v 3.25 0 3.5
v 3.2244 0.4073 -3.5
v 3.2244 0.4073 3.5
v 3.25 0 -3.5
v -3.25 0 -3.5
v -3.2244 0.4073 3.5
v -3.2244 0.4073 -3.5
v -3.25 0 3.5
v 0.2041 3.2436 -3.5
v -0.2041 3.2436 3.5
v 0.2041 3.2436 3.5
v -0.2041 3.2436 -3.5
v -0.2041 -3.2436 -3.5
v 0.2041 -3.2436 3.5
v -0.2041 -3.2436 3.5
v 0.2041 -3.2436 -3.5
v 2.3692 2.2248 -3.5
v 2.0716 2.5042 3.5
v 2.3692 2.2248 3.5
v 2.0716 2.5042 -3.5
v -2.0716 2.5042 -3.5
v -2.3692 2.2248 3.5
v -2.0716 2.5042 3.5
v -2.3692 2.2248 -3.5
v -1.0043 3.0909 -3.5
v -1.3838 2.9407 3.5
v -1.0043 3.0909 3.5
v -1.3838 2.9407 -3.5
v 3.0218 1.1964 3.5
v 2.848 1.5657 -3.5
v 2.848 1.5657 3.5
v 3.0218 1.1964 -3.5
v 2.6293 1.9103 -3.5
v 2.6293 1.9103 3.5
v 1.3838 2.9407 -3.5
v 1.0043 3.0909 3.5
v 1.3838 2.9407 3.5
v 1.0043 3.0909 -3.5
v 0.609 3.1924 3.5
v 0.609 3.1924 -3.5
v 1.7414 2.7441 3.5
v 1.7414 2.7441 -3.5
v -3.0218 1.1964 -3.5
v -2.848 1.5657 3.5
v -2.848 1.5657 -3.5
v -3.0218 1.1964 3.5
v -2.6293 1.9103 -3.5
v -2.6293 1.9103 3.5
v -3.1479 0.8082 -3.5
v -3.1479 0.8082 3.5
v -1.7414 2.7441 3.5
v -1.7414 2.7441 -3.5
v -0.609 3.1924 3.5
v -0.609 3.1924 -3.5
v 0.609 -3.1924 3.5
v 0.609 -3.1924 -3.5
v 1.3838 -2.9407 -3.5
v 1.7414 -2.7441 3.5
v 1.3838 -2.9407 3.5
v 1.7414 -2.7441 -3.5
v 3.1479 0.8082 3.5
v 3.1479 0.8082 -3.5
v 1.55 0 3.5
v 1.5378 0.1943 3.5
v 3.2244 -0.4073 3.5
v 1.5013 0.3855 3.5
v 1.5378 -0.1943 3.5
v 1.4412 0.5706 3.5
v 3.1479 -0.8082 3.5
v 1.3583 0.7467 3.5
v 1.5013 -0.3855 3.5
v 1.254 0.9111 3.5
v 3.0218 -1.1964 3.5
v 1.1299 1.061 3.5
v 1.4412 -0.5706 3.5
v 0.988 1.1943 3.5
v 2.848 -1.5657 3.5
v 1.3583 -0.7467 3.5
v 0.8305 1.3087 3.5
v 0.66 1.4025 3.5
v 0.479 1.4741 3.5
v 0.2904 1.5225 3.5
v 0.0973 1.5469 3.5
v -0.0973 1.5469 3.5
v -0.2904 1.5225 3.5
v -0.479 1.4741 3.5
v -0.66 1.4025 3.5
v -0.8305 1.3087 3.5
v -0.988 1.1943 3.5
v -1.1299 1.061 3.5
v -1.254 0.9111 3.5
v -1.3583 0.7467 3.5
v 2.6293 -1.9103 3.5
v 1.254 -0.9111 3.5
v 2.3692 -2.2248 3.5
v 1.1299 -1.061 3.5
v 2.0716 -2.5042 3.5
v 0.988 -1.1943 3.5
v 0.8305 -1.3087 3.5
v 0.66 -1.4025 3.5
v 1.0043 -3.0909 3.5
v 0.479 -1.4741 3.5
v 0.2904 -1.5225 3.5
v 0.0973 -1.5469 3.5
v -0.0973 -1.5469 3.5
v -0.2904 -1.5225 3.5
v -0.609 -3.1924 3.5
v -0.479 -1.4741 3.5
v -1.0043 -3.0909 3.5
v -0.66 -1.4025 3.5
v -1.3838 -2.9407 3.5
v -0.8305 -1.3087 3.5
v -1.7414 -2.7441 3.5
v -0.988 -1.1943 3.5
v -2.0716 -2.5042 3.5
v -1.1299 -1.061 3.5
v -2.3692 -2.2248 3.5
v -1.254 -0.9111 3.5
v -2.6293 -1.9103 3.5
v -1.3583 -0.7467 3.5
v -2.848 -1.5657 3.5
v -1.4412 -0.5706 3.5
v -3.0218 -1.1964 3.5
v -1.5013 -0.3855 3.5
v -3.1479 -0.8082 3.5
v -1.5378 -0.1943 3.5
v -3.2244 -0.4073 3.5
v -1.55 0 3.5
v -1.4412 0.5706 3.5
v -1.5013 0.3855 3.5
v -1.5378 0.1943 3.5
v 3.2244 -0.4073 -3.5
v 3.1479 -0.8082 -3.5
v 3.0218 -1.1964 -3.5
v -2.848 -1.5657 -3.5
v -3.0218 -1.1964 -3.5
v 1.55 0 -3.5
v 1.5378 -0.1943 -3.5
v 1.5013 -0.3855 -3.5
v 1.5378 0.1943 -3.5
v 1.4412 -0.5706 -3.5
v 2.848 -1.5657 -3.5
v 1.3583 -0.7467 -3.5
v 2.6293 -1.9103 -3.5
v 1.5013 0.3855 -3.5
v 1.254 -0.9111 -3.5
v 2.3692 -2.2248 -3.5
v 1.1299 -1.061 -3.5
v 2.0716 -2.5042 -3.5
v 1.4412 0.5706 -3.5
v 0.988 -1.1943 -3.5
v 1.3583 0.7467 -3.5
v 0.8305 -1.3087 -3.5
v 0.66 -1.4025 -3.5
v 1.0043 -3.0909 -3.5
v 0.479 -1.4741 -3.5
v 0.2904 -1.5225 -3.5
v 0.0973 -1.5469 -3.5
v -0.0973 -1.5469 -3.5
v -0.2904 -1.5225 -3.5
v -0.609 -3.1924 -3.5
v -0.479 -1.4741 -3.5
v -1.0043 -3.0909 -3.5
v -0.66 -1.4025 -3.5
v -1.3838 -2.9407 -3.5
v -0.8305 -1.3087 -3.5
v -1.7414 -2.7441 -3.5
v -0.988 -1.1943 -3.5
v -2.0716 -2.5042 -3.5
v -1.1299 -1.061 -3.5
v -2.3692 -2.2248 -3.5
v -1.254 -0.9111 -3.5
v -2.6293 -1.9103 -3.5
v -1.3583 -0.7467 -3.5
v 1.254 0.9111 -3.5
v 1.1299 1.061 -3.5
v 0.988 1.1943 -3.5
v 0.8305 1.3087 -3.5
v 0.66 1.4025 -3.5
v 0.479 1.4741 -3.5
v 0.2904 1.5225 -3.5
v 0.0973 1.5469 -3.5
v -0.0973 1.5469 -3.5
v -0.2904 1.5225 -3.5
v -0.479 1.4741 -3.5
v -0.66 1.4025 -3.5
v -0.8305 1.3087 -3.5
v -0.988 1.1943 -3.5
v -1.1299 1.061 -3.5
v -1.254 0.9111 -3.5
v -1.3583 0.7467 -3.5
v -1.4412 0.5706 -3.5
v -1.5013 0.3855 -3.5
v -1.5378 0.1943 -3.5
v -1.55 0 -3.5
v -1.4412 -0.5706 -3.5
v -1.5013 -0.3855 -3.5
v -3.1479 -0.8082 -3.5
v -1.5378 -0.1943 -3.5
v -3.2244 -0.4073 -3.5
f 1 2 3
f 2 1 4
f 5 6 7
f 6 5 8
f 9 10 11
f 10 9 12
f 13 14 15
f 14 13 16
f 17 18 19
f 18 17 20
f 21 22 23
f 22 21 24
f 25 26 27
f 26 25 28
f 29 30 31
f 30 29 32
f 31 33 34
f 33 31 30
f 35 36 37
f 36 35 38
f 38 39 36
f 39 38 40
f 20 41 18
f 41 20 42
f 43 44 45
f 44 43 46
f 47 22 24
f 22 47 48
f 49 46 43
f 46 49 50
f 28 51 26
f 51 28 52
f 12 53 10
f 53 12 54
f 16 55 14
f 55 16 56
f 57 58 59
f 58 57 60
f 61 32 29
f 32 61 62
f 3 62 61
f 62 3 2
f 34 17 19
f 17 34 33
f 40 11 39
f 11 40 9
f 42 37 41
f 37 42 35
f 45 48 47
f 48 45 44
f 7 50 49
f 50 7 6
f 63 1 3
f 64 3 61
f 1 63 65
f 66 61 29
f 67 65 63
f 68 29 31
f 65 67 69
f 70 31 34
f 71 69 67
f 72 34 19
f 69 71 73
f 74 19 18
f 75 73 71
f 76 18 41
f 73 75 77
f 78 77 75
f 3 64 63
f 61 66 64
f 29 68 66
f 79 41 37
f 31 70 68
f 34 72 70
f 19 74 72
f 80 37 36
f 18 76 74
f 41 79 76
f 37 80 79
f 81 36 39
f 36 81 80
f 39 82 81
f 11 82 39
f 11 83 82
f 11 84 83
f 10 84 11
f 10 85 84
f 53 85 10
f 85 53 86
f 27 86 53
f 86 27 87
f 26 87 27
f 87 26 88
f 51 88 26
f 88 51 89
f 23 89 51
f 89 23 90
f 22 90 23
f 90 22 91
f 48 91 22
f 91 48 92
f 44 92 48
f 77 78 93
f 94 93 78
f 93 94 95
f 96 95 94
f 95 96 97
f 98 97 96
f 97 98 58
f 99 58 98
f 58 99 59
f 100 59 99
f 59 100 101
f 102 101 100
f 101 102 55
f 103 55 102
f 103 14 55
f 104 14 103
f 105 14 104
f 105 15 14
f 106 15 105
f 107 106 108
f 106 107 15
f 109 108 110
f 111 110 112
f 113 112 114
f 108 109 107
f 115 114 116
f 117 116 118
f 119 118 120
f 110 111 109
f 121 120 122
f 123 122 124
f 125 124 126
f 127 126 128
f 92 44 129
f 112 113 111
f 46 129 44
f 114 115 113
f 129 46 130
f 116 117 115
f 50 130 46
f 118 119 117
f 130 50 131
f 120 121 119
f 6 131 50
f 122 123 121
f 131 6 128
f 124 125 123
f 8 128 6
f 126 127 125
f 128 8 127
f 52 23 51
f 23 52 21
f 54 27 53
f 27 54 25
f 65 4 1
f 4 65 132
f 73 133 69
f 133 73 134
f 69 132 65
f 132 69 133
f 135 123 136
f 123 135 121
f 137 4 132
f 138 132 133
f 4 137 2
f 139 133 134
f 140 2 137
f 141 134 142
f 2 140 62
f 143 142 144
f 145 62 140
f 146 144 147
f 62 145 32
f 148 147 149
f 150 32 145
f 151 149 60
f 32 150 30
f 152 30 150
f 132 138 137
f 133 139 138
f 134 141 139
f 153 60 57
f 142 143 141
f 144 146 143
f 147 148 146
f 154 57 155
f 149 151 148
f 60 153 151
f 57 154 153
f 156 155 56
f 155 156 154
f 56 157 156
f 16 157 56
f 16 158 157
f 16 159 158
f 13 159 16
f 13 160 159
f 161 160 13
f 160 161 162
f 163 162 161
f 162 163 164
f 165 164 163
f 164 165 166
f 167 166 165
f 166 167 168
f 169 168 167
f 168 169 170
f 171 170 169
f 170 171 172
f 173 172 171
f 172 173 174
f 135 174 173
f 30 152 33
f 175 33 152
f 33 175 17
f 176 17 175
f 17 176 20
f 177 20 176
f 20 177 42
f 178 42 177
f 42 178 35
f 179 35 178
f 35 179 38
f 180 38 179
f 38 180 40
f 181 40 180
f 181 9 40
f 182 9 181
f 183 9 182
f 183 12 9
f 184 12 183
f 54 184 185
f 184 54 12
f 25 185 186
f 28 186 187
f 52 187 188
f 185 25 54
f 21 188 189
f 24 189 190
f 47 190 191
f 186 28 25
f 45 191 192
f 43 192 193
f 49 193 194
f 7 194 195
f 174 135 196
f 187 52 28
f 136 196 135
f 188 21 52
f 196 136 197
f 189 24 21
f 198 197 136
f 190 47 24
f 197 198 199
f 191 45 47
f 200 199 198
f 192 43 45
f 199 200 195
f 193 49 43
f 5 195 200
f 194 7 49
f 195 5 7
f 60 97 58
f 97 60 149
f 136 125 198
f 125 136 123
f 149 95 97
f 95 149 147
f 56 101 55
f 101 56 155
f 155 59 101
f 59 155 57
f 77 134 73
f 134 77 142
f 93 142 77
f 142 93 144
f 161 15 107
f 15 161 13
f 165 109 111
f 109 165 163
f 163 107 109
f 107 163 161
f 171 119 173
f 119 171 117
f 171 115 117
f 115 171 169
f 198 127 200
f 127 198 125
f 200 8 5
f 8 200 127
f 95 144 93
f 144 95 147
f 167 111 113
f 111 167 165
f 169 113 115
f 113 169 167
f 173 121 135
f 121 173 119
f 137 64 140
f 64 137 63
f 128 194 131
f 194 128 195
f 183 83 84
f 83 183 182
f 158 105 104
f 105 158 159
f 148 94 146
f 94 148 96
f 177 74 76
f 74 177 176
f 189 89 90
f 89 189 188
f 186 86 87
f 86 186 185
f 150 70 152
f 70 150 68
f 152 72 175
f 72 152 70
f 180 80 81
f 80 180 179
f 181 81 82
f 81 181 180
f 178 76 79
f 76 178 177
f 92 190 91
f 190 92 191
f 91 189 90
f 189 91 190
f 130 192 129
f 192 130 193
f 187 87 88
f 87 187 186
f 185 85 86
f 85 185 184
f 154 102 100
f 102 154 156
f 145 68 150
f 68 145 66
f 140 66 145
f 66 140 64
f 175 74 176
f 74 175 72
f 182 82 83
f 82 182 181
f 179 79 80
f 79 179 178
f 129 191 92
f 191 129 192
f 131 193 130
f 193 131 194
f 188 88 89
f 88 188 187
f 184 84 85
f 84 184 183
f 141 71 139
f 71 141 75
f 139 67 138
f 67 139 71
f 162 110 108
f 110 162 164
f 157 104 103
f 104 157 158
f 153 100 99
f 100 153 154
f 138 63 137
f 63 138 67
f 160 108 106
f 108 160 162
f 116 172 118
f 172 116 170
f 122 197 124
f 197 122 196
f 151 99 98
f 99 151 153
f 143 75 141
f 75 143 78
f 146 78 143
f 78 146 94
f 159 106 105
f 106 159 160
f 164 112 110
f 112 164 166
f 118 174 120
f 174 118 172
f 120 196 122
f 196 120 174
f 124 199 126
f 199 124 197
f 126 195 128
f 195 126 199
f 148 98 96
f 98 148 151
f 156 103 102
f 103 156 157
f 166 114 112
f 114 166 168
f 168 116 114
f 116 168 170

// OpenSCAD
$fn = 50;


difference() {
	union() {
		translate(v = [0, 0, -3.5000000000]) {
			cylinder(h = 7, r = 3.2500000000);
		}
	}
	union() {
		translate(v = [0, 0, -100.0000000000]) {
			cylinder(h = 200, r = 1.5500000000);
		}
	}
}
